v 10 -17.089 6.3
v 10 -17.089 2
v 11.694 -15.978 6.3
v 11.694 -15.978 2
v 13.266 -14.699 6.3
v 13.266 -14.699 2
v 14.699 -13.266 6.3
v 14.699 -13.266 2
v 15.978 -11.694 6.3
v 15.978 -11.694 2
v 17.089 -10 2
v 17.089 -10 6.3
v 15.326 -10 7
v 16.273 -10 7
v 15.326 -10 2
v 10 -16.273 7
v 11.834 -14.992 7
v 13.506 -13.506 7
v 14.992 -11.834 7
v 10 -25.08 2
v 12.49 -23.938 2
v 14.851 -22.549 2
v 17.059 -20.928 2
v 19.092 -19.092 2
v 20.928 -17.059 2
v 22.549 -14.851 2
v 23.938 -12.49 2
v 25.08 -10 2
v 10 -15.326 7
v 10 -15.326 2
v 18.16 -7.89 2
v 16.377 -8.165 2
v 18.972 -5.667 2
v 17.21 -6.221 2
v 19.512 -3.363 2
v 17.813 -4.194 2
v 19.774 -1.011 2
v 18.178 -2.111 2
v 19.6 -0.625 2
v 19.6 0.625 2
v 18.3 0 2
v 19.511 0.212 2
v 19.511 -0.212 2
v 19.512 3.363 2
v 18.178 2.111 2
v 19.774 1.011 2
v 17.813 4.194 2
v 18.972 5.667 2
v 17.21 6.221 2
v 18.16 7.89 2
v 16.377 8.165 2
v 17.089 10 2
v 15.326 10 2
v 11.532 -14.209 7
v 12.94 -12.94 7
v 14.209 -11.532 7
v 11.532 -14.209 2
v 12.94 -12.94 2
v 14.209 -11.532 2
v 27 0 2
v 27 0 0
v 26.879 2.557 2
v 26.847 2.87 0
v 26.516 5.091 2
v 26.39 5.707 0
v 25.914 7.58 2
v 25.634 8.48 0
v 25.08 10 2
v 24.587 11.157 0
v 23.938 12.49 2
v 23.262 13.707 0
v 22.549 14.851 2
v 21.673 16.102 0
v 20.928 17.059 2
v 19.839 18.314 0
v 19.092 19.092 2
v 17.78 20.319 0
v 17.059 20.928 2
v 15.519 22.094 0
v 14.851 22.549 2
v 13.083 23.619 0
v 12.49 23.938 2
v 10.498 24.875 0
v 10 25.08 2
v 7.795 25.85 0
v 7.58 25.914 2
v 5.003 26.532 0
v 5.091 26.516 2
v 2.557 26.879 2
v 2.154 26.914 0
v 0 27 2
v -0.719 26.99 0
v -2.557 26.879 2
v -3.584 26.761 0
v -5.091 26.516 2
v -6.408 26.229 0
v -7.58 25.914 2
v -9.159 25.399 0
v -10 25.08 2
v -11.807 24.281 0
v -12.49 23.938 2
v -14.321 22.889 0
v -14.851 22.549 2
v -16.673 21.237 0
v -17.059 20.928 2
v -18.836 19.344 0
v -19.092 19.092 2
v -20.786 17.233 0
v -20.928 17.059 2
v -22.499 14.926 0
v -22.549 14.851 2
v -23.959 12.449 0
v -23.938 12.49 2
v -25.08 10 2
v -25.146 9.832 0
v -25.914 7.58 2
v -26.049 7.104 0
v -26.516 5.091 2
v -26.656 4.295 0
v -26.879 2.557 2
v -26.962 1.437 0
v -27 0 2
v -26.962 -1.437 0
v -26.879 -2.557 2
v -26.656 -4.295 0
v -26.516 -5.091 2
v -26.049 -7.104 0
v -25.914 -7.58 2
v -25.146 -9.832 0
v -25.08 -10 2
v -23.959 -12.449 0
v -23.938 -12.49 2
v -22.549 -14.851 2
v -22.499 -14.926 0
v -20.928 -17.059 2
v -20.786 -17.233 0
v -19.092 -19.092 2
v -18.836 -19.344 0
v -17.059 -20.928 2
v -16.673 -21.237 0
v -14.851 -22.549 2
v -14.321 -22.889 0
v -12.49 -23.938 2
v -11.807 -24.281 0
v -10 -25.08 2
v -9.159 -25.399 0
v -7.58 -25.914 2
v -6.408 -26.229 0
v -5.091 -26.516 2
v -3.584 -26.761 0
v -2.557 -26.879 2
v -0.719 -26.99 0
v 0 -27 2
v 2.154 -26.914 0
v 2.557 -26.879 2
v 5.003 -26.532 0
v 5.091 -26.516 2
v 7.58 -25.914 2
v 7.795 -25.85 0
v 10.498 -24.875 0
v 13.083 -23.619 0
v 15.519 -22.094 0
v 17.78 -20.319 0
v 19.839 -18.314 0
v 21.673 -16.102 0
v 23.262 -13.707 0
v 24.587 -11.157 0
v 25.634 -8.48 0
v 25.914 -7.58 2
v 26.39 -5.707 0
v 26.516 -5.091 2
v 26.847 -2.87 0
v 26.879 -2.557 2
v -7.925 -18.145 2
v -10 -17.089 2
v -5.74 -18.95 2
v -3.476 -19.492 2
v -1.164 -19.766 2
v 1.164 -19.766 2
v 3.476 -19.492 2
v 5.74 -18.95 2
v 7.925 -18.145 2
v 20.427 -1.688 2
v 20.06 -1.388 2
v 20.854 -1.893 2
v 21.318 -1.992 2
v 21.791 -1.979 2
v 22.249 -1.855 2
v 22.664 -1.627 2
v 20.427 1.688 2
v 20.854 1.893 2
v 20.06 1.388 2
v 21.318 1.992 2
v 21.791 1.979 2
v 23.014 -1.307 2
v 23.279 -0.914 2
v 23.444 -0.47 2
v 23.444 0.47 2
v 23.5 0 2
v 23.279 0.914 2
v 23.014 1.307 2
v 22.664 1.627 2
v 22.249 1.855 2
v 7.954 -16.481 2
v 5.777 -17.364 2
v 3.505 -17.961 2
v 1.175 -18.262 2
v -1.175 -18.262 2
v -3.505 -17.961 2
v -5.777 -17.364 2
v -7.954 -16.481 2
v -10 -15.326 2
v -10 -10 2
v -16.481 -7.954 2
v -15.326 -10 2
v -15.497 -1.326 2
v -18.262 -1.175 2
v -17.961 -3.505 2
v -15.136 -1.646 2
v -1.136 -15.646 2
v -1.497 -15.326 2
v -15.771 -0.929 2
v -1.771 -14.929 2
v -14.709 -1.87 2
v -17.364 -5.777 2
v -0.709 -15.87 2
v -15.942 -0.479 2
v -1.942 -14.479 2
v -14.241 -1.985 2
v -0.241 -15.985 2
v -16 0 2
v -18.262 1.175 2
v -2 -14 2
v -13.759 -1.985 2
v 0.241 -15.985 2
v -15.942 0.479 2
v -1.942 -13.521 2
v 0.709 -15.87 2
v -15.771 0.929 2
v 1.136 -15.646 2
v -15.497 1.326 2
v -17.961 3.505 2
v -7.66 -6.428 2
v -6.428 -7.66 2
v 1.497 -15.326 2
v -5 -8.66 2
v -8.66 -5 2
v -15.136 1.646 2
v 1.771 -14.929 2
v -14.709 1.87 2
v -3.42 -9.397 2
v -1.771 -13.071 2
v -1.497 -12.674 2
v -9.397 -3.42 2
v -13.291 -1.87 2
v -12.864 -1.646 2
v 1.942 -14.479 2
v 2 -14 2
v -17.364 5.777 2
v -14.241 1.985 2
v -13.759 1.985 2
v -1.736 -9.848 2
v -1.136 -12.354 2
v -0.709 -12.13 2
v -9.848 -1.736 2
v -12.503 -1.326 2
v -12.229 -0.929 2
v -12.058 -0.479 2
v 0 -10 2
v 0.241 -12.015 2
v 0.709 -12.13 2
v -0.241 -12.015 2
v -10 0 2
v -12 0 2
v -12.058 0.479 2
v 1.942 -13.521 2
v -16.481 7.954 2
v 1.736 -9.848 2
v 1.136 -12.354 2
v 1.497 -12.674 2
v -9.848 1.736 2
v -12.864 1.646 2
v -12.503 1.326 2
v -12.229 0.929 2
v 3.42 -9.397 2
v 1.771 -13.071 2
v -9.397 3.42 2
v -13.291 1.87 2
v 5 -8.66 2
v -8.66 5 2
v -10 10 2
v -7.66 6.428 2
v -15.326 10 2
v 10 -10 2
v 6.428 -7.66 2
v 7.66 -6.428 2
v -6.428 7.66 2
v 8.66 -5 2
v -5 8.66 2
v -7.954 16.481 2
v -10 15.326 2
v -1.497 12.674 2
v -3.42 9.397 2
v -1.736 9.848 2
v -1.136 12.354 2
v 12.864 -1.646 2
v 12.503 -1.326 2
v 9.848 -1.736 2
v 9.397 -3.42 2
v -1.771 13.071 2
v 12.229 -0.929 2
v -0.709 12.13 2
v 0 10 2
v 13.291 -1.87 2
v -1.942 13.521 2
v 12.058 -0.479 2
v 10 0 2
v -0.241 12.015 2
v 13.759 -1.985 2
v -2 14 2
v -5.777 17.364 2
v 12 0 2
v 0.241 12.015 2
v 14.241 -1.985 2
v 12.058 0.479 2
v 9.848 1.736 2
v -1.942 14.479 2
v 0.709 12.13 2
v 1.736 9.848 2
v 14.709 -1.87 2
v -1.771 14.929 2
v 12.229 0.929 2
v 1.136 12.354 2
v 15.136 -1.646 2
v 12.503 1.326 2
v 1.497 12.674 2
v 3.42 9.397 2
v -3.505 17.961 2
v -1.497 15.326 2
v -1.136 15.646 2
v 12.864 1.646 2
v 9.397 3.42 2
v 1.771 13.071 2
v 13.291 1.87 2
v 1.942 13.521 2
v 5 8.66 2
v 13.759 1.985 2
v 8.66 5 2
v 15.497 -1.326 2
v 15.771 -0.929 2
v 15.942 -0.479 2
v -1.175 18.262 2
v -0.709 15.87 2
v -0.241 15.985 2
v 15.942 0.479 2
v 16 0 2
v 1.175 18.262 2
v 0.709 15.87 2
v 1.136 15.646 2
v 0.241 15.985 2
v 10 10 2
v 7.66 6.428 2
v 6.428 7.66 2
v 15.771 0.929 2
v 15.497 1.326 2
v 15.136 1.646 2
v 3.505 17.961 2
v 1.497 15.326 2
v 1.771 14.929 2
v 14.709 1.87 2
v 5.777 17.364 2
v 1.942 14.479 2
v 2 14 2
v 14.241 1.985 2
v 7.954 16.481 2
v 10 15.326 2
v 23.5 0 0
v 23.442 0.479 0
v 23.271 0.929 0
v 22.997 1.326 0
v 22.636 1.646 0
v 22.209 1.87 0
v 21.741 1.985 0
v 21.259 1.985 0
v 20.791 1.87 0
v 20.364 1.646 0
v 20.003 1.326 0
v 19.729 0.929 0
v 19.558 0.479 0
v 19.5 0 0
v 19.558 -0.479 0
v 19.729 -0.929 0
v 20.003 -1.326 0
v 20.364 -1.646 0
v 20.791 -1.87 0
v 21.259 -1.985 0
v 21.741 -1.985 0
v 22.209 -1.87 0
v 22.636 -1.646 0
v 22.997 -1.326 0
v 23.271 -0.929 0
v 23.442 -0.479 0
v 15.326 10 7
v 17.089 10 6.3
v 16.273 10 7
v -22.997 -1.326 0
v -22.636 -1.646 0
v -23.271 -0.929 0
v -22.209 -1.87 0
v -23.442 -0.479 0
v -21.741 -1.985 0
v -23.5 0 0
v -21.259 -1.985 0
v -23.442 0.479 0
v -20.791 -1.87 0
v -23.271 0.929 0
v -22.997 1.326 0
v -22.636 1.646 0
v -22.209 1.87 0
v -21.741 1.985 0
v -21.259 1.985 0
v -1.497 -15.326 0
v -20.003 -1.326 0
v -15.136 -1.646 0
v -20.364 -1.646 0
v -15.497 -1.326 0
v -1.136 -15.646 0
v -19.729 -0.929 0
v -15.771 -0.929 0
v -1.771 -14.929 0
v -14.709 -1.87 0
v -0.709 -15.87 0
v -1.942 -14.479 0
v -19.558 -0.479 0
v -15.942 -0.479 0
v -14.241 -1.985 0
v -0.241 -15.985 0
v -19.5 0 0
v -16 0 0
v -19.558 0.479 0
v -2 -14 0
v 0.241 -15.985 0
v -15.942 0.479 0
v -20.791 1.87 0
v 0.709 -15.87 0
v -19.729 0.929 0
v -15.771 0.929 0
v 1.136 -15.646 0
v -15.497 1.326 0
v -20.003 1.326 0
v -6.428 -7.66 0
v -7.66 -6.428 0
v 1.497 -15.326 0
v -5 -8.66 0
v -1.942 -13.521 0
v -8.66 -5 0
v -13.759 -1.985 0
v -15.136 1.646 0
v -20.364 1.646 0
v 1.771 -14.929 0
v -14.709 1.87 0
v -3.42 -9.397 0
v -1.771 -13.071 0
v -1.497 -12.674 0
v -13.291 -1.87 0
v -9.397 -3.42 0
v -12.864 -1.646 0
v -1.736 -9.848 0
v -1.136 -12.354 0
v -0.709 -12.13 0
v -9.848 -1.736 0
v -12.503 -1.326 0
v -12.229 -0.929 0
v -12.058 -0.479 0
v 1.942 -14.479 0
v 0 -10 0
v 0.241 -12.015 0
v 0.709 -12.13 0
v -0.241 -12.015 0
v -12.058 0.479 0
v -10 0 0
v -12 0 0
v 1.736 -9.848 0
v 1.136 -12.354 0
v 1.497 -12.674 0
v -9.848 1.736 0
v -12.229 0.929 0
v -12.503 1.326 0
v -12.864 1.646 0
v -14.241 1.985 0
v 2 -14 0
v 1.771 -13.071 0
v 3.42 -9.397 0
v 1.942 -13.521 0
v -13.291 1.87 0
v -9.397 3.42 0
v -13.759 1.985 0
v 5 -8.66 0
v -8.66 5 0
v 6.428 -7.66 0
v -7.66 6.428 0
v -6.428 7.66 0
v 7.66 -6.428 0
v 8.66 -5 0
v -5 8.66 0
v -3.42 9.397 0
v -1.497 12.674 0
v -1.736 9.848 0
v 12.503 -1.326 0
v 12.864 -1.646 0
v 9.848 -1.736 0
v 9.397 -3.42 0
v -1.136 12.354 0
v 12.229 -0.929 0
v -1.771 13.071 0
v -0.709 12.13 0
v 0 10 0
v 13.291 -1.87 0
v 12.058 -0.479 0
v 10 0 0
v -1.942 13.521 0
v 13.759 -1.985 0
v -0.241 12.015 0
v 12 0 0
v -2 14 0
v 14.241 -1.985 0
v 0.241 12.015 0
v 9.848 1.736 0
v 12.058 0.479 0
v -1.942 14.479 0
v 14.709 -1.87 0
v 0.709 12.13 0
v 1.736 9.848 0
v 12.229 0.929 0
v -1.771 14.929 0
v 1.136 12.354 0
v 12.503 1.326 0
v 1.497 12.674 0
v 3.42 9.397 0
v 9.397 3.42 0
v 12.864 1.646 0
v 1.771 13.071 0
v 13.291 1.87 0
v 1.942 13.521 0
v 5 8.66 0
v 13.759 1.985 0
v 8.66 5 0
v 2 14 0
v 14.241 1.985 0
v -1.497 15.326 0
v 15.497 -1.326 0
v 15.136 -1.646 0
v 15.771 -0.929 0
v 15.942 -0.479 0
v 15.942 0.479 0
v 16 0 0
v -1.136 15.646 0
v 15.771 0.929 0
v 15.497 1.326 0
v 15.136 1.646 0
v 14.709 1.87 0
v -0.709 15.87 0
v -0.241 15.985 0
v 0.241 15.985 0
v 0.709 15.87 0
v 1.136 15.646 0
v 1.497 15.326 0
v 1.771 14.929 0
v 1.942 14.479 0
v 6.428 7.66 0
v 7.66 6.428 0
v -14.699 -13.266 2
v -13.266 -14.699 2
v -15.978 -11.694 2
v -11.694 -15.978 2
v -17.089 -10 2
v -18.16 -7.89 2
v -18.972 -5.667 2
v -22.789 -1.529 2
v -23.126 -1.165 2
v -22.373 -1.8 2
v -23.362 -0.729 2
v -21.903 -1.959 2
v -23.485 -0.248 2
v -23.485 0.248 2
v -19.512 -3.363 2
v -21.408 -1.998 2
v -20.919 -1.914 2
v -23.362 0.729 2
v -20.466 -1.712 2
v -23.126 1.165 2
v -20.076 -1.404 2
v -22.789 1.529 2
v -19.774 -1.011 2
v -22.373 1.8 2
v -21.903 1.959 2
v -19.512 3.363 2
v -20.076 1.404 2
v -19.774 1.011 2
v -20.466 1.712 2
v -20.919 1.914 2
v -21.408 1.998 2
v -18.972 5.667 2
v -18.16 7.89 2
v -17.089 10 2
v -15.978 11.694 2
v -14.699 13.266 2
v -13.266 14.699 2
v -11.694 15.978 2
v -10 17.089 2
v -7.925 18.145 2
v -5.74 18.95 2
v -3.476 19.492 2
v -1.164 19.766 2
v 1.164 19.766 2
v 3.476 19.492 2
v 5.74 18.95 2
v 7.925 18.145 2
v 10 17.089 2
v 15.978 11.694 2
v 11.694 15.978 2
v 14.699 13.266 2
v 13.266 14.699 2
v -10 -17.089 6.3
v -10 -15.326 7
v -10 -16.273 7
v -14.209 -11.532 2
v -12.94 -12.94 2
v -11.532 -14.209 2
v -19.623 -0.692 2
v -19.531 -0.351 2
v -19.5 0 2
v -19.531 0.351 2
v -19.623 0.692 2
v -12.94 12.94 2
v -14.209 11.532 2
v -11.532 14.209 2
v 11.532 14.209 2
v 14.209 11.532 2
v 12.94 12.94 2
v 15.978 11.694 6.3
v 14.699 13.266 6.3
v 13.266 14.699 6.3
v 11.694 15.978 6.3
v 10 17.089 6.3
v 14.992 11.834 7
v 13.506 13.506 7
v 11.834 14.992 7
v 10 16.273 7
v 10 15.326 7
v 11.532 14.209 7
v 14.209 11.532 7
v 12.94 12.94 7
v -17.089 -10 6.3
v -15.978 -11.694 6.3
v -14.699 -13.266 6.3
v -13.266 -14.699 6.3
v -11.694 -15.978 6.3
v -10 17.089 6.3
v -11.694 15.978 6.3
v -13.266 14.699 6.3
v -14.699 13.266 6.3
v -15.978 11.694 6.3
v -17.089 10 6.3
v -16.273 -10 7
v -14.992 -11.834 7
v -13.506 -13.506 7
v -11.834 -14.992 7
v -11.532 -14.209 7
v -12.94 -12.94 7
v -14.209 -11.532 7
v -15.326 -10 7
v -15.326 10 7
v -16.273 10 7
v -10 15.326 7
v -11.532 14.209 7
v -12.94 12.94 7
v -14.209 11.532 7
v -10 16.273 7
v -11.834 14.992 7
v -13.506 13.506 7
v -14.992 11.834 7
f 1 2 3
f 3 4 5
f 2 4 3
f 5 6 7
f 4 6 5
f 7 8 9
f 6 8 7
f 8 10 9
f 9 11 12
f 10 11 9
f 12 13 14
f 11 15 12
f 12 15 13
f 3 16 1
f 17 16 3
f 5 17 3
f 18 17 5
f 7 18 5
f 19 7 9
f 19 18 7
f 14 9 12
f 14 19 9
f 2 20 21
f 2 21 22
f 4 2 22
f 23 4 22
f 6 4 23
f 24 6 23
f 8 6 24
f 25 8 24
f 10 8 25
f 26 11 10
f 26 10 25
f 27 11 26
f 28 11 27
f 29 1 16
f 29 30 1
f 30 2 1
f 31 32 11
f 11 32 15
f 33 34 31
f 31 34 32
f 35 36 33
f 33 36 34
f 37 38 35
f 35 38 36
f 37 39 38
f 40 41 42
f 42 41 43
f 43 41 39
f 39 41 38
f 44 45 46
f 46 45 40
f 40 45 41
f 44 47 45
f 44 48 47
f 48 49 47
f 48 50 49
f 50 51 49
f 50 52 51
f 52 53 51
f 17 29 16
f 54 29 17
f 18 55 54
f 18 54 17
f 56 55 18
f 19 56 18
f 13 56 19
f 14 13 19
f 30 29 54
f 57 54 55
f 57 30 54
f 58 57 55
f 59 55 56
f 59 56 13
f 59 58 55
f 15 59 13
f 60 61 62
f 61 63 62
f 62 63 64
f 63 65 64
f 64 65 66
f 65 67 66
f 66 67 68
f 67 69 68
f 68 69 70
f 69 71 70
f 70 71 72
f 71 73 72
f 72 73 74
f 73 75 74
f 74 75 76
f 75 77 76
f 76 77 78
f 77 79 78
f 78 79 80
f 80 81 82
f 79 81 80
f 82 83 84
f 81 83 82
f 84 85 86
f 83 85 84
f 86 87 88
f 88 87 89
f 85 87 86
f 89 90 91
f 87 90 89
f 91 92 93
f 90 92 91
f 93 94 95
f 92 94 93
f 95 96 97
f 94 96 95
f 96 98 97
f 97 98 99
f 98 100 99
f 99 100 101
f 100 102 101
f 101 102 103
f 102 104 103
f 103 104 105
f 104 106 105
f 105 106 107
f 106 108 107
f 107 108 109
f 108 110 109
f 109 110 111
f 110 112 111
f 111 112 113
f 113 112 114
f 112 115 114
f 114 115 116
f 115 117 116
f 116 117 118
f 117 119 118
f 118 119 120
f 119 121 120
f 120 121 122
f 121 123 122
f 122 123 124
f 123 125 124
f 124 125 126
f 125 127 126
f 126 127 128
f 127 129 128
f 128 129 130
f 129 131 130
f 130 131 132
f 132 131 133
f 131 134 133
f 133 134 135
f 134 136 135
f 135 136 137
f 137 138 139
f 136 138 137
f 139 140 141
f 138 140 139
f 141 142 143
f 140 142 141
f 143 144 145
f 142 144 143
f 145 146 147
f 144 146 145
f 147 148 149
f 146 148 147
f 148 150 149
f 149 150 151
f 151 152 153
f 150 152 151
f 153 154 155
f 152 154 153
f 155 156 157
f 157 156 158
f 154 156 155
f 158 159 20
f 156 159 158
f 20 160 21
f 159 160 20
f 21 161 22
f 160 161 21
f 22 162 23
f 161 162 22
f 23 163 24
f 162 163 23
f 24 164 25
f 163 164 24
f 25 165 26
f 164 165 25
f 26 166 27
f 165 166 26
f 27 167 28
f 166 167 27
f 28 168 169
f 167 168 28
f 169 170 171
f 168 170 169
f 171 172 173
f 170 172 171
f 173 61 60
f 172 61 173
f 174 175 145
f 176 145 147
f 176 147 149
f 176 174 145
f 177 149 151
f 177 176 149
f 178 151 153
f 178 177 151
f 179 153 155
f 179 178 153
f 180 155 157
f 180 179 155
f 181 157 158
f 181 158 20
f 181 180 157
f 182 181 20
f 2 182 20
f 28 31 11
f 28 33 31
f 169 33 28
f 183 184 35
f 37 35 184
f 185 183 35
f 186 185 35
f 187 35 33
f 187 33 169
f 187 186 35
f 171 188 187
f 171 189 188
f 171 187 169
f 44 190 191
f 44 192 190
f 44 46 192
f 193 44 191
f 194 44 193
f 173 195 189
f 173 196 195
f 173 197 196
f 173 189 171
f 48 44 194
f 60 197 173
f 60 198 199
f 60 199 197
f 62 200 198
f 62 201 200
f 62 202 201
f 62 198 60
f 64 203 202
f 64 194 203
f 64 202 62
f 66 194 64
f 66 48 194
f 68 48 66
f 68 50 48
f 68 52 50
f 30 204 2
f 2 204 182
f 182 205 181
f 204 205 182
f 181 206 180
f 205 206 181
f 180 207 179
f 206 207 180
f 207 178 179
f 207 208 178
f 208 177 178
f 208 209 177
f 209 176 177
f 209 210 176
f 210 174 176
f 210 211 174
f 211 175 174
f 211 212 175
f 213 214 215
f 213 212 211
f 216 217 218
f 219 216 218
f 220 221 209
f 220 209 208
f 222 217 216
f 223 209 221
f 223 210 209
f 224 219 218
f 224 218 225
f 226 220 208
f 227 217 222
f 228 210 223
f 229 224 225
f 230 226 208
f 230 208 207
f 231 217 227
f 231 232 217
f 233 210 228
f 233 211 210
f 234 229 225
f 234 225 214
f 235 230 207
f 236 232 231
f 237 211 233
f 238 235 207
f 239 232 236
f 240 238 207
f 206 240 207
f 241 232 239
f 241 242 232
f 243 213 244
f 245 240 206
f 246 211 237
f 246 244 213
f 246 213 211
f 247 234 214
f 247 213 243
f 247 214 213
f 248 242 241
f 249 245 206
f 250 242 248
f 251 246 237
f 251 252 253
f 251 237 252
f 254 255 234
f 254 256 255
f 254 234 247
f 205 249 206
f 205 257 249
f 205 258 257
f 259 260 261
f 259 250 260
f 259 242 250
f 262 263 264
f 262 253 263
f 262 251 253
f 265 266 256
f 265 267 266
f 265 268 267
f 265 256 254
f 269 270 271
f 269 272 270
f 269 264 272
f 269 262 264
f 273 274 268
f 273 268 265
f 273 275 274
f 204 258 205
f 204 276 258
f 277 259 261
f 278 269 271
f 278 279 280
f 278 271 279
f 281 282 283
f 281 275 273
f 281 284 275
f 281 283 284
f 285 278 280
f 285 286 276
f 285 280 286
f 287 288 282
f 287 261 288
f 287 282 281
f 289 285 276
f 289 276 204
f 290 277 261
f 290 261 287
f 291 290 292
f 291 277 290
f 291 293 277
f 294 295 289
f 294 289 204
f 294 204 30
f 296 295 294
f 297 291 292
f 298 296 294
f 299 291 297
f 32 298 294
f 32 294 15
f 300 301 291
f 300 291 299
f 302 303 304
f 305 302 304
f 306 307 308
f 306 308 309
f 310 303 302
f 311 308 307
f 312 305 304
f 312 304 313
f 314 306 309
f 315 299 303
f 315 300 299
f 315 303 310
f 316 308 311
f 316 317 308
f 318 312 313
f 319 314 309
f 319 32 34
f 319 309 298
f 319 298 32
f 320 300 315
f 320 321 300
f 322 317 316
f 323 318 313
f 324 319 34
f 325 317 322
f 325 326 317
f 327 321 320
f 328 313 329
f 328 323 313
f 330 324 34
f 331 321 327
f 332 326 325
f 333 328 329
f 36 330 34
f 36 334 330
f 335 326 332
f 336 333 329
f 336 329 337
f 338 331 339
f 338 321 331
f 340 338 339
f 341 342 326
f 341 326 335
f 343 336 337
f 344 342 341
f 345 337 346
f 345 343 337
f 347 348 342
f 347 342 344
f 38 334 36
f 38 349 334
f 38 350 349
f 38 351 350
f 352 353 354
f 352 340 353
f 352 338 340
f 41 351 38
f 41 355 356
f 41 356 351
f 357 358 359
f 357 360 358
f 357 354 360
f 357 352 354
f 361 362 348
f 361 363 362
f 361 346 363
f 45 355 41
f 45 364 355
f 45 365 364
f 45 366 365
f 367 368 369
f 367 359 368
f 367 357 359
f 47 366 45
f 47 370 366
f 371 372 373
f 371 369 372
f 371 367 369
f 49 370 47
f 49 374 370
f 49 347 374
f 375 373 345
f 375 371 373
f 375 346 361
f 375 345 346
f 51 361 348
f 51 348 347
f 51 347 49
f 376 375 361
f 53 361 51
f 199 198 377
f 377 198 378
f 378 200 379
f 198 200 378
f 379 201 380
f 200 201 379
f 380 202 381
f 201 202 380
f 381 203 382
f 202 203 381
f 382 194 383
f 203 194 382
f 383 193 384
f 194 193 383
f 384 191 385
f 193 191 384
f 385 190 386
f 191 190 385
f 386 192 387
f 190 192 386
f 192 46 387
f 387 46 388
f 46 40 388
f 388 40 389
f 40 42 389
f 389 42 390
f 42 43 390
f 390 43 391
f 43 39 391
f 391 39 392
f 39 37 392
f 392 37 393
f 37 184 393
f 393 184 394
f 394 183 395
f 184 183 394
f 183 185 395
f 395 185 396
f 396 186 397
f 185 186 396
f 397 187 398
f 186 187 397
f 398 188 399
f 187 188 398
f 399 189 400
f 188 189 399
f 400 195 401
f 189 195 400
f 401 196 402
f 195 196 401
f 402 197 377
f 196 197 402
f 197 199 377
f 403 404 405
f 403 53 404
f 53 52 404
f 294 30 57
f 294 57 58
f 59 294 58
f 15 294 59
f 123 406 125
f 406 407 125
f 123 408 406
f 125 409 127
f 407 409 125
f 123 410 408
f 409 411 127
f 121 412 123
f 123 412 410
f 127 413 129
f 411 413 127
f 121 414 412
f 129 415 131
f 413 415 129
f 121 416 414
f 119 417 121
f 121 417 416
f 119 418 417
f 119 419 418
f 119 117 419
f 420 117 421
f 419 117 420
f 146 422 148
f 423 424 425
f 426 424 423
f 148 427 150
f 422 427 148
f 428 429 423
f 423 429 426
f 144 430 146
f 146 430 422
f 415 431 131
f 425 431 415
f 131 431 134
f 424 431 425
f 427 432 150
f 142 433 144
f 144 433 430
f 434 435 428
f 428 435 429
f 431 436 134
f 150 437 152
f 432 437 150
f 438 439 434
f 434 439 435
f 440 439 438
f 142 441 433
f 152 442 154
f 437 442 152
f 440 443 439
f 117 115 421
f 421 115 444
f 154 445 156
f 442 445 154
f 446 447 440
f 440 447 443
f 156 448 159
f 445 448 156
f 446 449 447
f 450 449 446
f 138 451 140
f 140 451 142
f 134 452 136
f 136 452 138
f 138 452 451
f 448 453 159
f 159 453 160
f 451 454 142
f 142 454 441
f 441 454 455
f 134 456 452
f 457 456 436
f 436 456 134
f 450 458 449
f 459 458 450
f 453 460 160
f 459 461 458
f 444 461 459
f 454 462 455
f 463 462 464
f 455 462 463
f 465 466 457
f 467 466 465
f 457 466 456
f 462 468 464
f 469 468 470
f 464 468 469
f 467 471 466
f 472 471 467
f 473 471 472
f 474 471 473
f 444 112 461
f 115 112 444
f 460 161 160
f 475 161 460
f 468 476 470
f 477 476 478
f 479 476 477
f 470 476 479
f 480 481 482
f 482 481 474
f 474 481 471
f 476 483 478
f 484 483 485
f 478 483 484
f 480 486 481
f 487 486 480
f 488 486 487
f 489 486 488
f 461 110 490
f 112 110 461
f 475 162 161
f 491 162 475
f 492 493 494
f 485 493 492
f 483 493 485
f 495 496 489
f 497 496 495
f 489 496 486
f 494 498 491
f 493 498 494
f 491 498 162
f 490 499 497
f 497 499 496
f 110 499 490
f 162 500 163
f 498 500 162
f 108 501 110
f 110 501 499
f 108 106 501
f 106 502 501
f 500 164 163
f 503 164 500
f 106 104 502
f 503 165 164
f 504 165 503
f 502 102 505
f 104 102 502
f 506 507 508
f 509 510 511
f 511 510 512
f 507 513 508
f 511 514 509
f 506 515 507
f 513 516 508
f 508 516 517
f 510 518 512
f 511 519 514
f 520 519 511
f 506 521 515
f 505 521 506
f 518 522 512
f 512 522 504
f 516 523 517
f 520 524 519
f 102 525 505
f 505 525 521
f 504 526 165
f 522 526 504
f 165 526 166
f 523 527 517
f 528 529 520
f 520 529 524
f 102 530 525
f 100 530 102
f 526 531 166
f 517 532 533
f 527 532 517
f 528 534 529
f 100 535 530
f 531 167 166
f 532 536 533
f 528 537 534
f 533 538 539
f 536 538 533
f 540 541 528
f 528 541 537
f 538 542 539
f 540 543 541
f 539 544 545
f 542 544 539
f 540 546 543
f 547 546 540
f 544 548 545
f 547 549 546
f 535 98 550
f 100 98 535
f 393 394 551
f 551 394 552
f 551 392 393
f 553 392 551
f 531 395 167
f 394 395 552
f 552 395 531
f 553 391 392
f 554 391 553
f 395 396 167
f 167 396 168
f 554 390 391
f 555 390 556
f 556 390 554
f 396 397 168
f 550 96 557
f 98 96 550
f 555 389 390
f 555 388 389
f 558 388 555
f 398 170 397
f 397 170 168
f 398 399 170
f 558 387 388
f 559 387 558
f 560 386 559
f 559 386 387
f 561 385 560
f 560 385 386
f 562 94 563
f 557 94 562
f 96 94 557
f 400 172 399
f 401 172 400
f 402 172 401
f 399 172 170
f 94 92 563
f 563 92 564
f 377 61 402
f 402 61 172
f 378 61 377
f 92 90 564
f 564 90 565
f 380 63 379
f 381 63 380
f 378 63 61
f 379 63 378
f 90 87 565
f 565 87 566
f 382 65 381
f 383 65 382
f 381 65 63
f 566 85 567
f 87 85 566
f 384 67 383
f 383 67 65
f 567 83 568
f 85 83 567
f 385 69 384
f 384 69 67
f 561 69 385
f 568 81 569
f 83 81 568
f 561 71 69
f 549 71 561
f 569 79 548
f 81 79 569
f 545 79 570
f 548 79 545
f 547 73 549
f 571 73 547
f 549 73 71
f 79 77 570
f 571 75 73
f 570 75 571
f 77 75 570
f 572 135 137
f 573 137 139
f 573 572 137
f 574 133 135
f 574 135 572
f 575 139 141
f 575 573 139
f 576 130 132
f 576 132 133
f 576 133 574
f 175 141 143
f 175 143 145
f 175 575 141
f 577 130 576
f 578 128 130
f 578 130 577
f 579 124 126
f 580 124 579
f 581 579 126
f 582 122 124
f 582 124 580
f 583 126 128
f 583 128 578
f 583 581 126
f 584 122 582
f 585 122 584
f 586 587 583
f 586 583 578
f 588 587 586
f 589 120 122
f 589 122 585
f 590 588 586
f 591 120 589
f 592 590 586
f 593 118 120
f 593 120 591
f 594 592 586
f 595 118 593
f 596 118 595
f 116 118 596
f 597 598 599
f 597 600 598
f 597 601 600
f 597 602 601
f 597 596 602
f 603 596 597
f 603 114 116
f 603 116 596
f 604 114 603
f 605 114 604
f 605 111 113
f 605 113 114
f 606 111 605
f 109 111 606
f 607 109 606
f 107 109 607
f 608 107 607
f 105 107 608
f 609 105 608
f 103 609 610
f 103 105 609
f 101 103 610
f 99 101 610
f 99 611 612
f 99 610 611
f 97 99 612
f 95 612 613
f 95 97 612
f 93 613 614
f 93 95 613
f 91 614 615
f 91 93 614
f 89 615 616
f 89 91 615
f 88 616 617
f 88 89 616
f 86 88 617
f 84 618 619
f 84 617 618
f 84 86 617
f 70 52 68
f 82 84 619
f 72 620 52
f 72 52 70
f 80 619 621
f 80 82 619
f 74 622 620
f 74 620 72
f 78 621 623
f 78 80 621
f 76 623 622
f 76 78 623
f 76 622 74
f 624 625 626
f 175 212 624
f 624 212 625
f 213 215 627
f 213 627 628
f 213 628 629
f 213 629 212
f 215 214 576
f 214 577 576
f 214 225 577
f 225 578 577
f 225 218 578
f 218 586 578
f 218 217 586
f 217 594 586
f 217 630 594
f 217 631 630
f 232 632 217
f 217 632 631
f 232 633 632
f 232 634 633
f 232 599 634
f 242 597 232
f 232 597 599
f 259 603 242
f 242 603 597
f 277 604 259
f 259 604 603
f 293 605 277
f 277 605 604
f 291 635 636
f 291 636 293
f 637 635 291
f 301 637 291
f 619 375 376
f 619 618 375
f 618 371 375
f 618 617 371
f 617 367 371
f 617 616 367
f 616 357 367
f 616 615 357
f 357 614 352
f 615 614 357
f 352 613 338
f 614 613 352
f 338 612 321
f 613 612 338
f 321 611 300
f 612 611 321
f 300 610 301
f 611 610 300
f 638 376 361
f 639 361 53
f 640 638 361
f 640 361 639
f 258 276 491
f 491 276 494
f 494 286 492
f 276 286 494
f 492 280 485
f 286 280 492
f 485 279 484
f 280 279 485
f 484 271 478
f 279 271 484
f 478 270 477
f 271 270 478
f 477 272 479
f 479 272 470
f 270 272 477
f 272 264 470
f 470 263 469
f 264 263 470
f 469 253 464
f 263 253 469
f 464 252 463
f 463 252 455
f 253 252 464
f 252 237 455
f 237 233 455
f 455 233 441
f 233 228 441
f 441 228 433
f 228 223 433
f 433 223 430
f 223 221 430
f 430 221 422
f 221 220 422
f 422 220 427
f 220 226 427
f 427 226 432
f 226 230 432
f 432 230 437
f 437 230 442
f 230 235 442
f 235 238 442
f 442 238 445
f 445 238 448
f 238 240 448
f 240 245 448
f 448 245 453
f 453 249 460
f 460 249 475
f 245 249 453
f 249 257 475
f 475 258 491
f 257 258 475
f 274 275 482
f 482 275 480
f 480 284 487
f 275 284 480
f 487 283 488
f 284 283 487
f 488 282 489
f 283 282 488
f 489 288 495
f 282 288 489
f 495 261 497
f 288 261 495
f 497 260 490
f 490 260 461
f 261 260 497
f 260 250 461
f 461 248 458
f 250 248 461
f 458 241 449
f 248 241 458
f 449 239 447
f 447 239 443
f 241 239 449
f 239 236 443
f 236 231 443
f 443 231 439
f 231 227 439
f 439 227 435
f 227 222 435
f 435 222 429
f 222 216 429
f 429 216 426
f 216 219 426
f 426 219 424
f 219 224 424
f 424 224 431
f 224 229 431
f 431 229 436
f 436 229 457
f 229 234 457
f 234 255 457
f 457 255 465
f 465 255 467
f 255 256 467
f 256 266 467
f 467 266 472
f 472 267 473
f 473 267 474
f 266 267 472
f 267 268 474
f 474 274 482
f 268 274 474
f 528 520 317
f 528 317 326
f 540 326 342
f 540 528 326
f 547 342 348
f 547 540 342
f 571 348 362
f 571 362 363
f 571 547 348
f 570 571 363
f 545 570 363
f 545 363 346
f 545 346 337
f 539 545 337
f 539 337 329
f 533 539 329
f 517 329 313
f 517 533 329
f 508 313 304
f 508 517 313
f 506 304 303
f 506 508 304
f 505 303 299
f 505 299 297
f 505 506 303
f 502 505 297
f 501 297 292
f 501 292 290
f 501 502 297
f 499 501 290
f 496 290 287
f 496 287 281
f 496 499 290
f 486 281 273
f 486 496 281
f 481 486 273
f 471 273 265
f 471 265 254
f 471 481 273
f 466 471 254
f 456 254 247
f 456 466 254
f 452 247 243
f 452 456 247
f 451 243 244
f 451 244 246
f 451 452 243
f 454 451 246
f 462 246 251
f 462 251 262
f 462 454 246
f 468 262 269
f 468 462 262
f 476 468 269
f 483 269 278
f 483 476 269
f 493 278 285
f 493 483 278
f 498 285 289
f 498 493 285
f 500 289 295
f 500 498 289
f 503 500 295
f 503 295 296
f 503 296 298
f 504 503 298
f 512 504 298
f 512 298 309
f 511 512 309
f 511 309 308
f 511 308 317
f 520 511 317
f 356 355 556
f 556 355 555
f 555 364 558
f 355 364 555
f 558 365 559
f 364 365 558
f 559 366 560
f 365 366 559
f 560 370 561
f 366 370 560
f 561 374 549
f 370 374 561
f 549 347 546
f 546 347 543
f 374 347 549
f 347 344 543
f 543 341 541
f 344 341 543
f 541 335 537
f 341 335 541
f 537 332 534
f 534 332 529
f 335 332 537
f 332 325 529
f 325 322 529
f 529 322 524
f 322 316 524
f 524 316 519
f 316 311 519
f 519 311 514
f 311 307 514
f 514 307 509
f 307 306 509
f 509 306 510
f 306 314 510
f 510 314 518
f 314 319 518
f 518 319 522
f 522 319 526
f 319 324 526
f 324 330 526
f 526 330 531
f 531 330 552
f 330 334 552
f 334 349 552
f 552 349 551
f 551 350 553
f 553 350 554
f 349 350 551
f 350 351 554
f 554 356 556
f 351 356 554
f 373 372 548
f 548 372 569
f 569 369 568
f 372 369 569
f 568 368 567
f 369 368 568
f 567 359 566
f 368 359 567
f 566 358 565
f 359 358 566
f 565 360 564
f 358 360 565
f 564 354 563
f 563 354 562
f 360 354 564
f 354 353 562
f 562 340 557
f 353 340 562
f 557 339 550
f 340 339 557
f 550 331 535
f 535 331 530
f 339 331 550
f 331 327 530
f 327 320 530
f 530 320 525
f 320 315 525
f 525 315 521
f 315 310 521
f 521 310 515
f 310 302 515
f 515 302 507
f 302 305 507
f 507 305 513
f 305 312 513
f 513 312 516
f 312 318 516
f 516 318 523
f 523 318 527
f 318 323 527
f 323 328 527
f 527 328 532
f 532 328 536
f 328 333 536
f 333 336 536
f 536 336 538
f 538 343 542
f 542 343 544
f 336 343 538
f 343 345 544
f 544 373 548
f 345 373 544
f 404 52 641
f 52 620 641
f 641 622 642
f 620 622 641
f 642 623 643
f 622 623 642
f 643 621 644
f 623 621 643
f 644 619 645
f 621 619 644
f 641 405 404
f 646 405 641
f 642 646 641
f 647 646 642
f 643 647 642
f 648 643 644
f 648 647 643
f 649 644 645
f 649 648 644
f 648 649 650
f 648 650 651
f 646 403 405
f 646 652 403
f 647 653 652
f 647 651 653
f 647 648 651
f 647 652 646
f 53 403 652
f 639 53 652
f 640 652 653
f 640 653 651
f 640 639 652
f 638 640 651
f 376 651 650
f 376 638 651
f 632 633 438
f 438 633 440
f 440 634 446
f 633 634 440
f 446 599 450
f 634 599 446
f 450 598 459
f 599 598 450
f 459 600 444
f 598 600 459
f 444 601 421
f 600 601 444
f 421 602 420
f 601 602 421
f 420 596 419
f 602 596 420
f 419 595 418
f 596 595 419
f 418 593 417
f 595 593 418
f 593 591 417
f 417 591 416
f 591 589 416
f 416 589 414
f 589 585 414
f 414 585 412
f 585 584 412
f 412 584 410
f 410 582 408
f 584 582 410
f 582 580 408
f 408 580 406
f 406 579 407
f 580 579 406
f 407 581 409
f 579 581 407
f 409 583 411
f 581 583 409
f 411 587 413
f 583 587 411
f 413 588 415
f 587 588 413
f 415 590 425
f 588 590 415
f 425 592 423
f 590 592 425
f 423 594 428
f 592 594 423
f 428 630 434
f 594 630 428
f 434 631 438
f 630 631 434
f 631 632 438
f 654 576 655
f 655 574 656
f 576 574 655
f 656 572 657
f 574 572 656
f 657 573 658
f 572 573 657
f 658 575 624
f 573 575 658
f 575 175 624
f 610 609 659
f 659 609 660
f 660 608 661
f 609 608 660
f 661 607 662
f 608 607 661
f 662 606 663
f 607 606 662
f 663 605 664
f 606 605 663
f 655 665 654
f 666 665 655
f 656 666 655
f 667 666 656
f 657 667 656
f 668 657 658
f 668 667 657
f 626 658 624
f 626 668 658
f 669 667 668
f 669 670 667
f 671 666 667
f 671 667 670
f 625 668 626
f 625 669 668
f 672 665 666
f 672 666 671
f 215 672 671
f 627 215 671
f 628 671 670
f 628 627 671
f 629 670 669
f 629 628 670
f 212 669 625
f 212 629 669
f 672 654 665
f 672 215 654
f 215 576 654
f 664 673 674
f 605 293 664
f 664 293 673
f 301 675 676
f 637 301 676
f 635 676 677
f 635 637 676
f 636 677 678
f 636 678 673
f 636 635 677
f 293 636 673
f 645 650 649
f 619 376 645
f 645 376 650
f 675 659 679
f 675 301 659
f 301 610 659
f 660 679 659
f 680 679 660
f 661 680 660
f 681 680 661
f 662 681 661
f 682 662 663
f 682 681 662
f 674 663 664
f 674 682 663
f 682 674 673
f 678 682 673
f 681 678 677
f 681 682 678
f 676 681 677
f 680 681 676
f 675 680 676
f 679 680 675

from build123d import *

# Parameters (mm, degrees)
SKETCH_R        = 27
SKETCH_R_2      = 10
PAD_DEPTH       = 2
SKETCH001_R     = 2
POCKET_DEPTH    = 2.001
SKETCH002_R     = 19.8
SKETCH002_R_2   = 18.3
PAD001_DEPTH    = 5
POCKET001_DEPTH = 5
SKETCH004_R     = 2
POCKET002_DEPTH = 2.001
CHAMFER_SIZE    = 0.7


with BuildPart() as part:
    # Sketch → Pad (new body)
    with BuildSketch(Plane.XY):
        Circle(SKETCH_R)
        Circle(SKETCH_R_2, mode=Mode.SUBTRACT)
    extrude(amount=PAD_DEPTH)

    # Sketch001 (on Face4 of Pad) → Pocket (cut, through all)
    with BuildSketch(Plane.XY.offset(2)):
        with Locations((0, 14)):
            Circle(SKETCH001_R)
        with Locations((14, 0)):
            Circle(SKETCH001_R)
        with Locations((0, -14)):
            Circle(SKETCH001_R)
        with Locations((-14, 0)):
            Circle(SKETCH001_R)
    extrude(amount=-POCKET_DEPTH, mode=Mode.SUBTRACT)

    # Sketch002 (on Face3 of Pocket) → Pad001 (join)
    with BuildSketch(Plane.XY.offset(2)):
        Circle(SKETCH002_R)
        Circle(SKETCH002_R_2, mode=Mode.SUBTRACT)
    extrude(amount=PAD001_DEPTH)

    # Sketch003 (on Face3 of Pad001) → Pocket001 (cut)
    with BuildSketch(Plane.XY.offset(2)):
        Polygon((-49.376067, 10), (-10, 10), (-10, 45.075482), (10, 45.075482), (10, 10), (49.376067, 10), (49.376067, -10), (10, -10), (10, -45.075482), (-10, -45.075482), (-10, -10), (-49.376067, -10), align=None)
    extrude(amount=POCKET001_DEPTH, mode=Mode.SUBTRACT)

    # Sketch004 (on Face24 of Pocket001) → Pocket002 (cut, through all)
    with BuildSketch(Plane.XY.offset(2)):
        with Locations((-21.5, 0)):
            Circle(SKETCH004_R)
        with Locations((21.5, 0)):
            Circle(SKETCH004_R)
    extrude(amount=-POCKET002_DEPTH, mode=Mode.SUBTRACT)

    # Chamfer
    chamfer_edges = [part.edges().sort_by_distance(p)[0] for p in [
        (14.000714, -14.000714, 7),
        (-14.000714, -14.000714, 7),
        (-14.000714, 14.000714, 7),
        (14.000714, 14.000714, 7),
    ]]
    chamfer(chamfer_edges, length=CHAMFER_SIZE)


solid = part.part
